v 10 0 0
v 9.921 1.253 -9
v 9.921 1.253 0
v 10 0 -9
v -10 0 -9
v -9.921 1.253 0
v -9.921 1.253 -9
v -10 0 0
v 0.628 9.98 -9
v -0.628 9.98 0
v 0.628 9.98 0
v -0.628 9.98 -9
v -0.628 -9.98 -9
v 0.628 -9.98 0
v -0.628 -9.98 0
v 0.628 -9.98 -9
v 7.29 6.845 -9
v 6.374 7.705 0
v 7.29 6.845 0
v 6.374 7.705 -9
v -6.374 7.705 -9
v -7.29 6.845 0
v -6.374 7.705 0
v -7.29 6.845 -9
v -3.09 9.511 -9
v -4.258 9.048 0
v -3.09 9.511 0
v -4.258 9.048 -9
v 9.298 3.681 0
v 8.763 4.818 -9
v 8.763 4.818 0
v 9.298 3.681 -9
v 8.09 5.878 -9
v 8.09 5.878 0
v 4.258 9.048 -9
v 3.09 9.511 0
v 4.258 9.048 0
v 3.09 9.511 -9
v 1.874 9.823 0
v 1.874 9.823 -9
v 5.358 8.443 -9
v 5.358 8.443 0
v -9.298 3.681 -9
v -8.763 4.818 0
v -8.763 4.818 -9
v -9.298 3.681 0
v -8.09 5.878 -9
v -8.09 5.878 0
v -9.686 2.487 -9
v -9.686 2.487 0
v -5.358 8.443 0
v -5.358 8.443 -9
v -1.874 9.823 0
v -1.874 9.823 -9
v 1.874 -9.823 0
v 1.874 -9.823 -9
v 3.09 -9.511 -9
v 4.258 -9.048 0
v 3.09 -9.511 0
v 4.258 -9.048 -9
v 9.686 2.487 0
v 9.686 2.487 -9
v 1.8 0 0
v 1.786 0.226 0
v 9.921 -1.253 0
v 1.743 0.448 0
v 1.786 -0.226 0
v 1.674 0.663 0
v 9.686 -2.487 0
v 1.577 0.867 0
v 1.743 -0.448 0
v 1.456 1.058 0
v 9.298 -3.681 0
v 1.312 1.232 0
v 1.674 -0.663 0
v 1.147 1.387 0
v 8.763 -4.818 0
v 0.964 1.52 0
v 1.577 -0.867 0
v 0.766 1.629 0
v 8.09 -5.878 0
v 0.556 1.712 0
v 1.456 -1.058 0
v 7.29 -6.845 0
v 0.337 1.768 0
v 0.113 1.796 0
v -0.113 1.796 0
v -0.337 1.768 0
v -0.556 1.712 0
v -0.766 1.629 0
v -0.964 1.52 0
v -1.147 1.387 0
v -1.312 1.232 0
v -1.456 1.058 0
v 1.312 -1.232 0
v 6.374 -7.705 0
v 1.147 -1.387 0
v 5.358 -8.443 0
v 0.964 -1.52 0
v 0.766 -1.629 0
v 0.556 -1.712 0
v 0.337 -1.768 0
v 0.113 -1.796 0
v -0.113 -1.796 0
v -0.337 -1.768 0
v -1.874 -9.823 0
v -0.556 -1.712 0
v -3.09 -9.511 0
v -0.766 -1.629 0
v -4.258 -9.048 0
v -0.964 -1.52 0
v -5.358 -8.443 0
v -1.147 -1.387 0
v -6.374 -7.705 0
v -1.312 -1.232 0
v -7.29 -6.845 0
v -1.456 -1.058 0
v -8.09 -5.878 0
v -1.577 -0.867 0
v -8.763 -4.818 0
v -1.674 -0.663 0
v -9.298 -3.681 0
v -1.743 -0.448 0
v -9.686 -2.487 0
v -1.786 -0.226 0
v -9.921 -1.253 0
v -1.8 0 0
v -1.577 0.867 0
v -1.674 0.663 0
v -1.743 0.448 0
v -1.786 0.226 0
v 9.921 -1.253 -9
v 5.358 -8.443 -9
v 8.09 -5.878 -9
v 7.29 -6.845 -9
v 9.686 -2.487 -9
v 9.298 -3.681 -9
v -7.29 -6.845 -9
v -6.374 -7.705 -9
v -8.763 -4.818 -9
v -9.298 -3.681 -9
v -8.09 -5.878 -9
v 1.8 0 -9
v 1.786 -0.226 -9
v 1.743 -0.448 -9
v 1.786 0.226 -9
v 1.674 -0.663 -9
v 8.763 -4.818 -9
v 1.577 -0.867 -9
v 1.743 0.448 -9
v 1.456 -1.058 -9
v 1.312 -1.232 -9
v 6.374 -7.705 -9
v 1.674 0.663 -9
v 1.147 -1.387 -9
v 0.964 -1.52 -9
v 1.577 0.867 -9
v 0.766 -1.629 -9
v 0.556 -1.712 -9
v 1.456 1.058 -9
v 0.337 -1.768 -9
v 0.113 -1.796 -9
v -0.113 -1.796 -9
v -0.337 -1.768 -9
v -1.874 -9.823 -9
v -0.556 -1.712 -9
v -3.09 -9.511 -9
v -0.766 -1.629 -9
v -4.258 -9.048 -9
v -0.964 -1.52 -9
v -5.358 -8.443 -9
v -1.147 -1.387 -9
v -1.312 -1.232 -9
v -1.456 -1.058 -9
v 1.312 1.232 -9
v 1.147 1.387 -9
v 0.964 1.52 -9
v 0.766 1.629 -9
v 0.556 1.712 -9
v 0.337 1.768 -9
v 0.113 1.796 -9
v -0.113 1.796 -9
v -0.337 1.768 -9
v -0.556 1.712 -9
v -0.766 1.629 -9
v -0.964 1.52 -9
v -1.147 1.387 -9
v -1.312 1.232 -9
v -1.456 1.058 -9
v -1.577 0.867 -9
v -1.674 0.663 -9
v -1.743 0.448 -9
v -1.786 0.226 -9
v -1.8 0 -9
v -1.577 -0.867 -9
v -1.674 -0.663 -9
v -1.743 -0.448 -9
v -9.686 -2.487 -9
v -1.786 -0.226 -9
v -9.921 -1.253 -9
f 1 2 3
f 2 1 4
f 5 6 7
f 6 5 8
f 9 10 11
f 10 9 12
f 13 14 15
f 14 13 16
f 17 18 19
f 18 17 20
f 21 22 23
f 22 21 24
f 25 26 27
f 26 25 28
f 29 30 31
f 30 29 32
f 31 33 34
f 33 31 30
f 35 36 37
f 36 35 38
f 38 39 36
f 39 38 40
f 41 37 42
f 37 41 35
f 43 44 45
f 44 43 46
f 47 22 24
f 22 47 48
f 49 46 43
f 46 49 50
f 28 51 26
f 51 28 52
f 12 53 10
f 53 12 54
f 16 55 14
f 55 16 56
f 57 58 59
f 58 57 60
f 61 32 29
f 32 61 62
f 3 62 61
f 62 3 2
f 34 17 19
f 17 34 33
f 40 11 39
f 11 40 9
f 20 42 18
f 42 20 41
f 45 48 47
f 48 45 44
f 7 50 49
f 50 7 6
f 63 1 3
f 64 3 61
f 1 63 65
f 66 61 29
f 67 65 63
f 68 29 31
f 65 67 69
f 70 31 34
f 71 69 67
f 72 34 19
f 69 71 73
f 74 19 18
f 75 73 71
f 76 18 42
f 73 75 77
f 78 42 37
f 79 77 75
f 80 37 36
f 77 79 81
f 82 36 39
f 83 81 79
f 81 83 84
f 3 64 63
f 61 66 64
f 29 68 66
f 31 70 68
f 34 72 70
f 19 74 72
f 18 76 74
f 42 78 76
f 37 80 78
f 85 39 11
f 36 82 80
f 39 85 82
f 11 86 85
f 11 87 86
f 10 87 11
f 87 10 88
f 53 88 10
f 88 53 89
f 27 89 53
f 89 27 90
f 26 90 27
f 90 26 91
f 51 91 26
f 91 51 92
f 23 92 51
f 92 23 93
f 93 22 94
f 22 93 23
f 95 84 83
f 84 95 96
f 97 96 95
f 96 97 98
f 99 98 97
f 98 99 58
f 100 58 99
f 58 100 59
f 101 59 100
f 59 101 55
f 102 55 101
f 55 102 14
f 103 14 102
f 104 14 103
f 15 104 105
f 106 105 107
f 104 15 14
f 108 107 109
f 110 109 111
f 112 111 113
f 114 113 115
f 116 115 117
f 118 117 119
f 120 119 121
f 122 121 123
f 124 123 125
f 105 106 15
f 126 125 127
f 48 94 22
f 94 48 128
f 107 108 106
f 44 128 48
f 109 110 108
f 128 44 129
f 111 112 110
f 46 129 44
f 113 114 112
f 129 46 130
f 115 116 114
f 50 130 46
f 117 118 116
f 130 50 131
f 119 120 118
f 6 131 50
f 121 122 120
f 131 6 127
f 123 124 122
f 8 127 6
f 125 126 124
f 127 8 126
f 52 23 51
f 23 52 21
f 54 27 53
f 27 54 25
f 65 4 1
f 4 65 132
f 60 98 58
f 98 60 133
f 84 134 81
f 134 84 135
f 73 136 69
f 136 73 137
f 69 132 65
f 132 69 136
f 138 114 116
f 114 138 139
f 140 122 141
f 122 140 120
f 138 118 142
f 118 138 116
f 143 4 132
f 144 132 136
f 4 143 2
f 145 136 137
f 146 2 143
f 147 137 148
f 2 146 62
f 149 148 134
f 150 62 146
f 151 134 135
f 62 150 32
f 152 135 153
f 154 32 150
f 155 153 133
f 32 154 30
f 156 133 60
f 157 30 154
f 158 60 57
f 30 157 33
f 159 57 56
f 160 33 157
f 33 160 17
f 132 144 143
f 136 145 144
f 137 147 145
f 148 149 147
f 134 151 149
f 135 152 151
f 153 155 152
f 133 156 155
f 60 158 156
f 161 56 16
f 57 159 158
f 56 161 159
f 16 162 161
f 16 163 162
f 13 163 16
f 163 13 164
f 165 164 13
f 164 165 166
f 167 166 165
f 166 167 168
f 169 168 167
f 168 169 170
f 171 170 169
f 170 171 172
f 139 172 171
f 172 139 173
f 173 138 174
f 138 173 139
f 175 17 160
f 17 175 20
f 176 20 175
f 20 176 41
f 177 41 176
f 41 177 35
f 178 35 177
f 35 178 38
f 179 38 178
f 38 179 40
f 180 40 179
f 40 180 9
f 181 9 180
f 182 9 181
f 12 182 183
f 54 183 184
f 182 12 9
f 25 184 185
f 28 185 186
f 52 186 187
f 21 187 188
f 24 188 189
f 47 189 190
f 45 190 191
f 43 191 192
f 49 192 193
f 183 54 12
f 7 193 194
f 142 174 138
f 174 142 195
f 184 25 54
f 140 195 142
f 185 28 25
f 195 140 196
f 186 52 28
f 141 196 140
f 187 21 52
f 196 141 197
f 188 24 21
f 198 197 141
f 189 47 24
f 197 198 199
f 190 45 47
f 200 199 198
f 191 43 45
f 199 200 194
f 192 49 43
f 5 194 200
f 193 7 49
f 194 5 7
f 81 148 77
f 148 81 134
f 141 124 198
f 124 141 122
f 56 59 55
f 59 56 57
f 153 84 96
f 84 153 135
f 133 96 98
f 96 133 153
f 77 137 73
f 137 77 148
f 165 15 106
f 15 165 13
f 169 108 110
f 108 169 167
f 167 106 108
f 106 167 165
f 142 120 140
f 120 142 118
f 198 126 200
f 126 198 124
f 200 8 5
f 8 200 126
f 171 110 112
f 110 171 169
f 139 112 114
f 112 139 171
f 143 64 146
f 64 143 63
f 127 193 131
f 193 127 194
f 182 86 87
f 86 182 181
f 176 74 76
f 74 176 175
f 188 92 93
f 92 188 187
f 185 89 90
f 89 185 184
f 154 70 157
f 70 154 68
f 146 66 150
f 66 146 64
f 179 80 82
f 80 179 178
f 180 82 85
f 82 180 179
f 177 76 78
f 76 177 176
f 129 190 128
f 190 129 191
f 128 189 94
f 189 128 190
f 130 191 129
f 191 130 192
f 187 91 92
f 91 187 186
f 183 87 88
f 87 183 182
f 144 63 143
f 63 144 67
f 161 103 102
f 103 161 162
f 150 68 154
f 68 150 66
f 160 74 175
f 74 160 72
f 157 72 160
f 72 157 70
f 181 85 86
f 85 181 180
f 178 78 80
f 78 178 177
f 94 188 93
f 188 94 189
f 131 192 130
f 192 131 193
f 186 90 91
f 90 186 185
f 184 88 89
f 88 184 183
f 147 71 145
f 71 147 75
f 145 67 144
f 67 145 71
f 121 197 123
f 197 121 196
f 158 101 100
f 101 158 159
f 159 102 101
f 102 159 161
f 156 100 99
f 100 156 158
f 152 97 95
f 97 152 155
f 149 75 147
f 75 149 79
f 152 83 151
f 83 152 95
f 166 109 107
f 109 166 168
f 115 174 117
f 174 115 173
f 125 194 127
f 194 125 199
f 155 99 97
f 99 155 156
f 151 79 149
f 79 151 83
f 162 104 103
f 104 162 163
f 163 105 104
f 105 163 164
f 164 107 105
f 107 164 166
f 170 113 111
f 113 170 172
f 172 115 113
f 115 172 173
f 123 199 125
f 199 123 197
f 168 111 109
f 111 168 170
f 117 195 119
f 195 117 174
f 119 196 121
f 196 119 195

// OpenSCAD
$fn = 50;


difference() {
	union() {
		translate(v = [0, 0, -9.0000000000]) {
			cylinder(h = 9, r = 10.0000000000);
		}
		cylinder(h = 0, r = 16.0000000000);
	}
	union() {
		#translate(v = [0, 0, -9]) {
			cylinder(h = 9, r = 1.8000000000);
		}
	}
}
